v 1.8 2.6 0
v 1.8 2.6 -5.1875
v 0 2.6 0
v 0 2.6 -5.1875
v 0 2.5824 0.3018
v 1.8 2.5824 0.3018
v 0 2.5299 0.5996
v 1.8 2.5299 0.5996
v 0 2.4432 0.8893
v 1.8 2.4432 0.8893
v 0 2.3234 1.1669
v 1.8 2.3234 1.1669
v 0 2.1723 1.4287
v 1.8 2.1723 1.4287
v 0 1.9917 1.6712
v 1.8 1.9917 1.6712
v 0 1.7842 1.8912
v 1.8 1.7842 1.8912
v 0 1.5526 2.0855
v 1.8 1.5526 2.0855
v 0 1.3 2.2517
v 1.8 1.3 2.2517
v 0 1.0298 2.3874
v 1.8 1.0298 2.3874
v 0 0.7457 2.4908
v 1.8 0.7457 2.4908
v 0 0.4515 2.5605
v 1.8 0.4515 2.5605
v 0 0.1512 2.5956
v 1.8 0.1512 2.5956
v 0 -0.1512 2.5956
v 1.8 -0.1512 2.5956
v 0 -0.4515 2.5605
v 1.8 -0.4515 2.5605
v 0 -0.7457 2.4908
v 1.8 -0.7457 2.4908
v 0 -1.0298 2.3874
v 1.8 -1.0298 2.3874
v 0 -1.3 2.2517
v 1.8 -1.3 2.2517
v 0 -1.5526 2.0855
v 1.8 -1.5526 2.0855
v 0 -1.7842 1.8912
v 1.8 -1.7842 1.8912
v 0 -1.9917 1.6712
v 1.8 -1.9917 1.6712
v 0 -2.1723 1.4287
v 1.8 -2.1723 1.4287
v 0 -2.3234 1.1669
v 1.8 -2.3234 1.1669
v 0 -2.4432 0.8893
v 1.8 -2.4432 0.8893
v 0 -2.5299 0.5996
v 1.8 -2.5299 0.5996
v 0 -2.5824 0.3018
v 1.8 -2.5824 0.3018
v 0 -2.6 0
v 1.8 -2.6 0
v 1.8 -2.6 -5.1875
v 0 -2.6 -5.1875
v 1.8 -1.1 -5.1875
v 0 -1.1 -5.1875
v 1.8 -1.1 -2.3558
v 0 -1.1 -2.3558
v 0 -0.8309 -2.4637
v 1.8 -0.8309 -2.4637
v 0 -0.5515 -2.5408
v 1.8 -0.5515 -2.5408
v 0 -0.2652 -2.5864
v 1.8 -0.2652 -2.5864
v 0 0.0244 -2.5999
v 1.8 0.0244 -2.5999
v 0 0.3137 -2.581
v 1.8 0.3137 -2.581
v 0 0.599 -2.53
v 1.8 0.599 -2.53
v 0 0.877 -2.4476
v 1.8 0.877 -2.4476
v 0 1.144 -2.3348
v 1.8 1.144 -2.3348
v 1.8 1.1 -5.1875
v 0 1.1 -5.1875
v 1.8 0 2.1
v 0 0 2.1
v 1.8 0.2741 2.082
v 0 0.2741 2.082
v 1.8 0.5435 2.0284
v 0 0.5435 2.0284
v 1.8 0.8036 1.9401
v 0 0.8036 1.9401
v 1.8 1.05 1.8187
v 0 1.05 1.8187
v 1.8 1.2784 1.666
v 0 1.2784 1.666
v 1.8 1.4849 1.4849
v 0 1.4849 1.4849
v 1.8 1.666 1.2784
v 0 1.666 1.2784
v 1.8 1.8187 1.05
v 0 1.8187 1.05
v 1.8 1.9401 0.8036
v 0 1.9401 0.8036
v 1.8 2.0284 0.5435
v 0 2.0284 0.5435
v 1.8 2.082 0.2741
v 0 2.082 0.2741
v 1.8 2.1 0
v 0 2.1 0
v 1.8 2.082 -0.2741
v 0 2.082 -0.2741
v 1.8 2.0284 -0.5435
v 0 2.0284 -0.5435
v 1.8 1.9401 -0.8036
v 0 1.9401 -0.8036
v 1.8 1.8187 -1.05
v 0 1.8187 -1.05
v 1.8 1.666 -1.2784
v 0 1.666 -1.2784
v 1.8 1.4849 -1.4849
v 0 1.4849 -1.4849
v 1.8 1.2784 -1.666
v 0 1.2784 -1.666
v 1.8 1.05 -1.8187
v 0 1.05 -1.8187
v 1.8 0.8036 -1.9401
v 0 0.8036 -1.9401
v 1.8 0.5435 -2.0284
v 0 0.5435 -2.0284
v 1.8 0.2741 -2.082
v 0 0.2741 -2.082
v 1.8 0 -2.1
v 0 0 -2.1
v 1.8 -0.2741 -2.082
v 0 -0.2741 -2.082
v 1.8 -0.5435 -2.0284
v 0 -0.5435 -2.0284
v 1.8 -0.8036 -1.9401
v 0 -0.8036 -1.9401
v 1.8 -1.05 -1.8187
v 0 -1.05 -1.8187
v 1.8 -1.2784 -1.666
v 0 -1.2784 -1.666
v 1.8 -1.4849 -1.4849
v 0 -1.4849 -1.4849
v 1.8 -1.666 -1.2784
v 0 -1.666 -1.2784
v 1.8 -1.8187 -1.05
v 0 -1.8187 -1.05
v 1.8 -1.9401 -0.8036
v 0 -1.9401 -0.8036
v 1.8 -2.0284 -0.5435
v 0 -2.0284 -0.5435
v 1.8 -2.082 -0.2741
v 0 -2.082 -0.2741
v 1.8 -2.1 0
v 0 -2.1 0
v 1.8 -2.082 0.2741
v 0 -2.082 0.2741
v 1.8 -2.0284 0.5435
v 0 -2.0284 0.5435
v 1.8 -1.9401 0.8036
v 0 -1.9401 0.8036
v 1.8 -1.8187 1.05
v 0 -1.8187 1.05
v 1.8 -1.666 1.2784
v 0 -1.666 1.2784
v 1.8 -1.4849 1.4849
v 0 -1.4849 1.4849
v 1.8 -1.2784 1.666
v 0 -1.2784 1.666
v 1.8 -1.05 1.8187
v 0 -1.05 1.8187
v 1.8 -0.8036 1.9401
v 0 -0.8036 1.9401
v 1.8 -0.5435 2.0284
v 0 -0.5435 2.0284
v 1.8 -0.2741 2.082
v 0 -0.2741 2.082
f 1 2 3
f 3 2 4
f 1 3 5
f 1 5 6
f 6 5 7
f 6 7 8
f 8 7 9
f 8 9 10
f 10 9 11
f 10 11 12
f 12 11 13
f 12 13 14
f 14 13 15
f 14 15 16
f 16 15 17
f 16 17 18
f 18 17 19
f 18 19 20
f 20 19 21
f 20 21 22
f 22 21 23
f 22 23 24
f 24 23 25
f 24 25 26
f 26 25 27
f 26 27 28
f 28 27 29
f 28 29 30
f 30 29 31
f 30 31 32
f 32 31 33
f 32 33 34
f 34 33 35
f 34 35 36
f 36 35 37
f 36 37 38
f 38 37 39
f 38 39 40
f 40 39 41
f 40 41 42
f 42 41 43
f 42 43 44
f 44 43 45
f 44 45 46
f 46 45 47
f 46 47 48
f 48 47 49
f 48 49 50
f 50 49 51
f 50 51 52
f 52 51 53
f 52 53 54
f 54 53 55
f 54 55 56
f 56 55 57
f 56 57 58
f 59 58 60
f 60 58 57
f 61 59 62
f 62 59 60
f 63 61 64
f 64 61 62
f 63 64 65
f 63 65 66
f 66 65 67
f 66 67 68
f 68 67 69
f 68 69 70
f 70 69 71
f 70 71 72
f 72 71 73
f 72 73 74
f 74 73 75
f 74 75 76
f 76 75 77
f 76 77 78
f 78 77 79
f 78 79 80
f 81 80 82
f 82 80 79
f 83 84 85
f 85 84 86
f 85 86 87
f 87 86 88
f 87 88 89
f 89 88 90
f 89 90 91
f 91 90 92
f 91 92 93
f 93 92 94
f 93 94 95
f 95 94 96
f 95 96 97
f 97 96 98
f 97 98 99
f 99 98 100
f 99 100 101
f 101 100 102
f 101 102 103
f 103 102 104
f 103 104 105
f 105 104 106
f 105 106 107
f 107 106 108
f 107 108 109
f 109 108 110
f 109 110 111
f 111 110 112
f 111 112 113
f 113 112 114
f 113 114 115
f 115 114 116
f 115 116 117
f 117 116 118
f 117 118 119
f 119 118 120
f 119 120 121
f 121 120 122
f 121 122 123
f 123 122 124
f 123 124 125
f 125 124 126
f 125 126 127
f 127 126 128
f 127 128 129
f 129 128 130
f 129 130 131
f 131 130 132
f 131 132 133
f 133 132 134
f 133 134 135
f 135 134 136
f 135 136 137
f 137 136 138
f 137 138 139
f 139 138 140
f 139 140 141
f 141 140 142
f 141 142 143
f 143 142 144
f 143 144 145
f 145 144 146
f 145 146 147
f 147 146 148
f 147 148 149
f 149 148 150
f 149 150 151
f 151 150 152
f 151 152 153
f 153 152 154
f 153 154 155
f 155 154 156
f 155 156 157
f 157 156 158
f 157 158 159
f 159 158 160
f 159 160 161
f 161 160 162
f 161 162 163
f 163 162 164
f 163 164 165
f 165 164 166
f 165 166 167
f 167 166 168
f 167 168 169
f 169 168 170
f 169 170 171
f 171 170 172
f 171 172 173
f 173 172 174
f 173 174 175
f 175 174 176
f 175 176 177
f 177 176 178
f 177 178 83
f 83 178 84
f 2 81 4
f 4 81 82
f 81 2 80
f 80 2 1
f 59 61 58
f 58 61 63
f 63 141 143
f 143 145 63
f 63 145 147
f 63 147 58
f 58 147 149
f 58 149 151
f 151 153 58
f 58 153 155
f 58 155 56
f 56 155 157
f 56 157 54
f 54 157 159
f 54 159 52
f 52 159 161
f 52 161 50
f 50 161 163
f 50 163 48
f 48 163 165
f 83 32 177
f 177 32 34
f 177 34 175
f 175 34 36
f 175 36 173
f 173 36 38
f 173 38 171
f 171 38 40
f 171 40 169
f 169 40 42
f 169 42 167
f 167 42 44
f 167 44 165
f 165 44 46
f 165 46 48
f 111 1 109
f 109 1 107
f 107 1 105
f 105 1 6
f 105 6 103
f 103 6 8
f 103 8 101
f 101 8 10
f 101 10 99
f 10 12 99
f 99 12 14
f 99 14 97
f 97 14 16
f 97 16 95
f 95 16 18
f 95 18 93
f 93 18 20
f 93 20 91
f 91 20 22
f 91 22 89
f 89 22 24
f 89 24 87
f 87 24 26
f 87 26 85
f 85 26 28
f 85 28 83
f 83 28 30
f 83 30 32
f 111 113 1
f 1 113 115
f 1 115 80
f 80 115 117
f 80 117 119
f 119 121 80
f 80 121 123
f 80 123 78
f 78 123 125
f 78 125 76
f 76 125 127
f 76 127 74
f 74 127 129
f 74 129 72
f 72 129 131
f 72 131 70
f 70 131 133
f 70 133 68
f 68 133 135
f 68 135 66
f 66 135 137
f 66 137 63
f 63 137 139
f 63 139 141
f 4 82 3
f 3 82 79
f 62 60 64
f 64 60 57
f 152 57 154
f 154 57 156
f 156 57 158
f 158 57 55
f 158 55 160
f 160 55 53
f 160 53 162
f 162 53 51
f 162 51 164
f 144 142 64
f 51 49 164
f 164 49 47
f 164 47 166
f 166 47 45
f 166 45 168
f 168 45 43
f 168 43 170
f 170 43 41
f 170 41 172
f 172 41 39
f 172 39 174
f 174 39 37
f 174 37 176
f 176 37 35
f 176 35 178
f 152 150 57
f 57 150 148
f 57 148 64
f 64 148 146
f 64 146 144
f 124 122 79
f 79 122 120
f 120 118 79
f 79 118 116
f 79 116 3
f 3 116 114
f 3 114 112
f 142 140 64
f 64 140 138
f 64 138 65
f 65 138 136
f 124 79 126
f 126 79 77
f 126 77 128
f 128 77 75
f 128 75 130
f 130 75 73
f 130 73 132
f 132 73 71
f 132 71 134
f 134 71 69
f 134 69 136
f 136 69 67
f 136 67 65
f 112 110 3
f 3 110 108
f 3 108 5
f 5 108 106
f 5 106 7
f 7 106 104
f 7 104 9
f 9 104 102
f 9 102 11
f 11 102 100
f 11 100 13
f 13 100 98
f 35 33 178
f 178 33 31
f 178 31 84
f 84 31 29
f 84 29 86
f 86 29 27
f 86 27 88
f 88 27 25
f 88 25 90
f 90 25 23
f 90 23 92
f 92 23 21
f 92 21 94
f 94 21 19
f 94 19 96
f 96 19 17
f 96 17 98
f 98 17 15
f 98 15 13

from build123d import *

# Parameters (mm, degrees)
SKETCH1_R           = 2.1
BOSS_EXTRUDE2_DEPTH = 1.8


with BuildPart() as part:
    # Sketch1 → Boss-Extrude2 (new body)
    with BuildSketch(Plane.YZ):
        with BuildLine():
            Line((-2.6, 0), (-2.6, -5.1875))
            Line((-2.6, -5.1875), (-1.1, -5.1875))
            Line((-1.1, -5.1875), (-1.1, -2.355843798))
            ThreePointArc((-1.1, -2.355843798), (0.024387933, -2.599885618), (1.144, -2.334794209))
            Line((1.144, -2.334794209), (1.1, -5.1875))
            Line((1.1, -5.1875), (2.6, -5.1875))
            Line((2.6, -5.1875), (2.6, 0))
            ThreePointArc((2.6, 0), (0, 2.6), (-2.6, 0))
        make_face()
        with Locations(Location((0, 0, 0), (0, 0, 270))):
            Circle(SKETCH1_R, mode=Mode.SUBTRACT)
    extrude(amount=BOSS_EXTRUDE2_DEPTH)


solid = part.part
